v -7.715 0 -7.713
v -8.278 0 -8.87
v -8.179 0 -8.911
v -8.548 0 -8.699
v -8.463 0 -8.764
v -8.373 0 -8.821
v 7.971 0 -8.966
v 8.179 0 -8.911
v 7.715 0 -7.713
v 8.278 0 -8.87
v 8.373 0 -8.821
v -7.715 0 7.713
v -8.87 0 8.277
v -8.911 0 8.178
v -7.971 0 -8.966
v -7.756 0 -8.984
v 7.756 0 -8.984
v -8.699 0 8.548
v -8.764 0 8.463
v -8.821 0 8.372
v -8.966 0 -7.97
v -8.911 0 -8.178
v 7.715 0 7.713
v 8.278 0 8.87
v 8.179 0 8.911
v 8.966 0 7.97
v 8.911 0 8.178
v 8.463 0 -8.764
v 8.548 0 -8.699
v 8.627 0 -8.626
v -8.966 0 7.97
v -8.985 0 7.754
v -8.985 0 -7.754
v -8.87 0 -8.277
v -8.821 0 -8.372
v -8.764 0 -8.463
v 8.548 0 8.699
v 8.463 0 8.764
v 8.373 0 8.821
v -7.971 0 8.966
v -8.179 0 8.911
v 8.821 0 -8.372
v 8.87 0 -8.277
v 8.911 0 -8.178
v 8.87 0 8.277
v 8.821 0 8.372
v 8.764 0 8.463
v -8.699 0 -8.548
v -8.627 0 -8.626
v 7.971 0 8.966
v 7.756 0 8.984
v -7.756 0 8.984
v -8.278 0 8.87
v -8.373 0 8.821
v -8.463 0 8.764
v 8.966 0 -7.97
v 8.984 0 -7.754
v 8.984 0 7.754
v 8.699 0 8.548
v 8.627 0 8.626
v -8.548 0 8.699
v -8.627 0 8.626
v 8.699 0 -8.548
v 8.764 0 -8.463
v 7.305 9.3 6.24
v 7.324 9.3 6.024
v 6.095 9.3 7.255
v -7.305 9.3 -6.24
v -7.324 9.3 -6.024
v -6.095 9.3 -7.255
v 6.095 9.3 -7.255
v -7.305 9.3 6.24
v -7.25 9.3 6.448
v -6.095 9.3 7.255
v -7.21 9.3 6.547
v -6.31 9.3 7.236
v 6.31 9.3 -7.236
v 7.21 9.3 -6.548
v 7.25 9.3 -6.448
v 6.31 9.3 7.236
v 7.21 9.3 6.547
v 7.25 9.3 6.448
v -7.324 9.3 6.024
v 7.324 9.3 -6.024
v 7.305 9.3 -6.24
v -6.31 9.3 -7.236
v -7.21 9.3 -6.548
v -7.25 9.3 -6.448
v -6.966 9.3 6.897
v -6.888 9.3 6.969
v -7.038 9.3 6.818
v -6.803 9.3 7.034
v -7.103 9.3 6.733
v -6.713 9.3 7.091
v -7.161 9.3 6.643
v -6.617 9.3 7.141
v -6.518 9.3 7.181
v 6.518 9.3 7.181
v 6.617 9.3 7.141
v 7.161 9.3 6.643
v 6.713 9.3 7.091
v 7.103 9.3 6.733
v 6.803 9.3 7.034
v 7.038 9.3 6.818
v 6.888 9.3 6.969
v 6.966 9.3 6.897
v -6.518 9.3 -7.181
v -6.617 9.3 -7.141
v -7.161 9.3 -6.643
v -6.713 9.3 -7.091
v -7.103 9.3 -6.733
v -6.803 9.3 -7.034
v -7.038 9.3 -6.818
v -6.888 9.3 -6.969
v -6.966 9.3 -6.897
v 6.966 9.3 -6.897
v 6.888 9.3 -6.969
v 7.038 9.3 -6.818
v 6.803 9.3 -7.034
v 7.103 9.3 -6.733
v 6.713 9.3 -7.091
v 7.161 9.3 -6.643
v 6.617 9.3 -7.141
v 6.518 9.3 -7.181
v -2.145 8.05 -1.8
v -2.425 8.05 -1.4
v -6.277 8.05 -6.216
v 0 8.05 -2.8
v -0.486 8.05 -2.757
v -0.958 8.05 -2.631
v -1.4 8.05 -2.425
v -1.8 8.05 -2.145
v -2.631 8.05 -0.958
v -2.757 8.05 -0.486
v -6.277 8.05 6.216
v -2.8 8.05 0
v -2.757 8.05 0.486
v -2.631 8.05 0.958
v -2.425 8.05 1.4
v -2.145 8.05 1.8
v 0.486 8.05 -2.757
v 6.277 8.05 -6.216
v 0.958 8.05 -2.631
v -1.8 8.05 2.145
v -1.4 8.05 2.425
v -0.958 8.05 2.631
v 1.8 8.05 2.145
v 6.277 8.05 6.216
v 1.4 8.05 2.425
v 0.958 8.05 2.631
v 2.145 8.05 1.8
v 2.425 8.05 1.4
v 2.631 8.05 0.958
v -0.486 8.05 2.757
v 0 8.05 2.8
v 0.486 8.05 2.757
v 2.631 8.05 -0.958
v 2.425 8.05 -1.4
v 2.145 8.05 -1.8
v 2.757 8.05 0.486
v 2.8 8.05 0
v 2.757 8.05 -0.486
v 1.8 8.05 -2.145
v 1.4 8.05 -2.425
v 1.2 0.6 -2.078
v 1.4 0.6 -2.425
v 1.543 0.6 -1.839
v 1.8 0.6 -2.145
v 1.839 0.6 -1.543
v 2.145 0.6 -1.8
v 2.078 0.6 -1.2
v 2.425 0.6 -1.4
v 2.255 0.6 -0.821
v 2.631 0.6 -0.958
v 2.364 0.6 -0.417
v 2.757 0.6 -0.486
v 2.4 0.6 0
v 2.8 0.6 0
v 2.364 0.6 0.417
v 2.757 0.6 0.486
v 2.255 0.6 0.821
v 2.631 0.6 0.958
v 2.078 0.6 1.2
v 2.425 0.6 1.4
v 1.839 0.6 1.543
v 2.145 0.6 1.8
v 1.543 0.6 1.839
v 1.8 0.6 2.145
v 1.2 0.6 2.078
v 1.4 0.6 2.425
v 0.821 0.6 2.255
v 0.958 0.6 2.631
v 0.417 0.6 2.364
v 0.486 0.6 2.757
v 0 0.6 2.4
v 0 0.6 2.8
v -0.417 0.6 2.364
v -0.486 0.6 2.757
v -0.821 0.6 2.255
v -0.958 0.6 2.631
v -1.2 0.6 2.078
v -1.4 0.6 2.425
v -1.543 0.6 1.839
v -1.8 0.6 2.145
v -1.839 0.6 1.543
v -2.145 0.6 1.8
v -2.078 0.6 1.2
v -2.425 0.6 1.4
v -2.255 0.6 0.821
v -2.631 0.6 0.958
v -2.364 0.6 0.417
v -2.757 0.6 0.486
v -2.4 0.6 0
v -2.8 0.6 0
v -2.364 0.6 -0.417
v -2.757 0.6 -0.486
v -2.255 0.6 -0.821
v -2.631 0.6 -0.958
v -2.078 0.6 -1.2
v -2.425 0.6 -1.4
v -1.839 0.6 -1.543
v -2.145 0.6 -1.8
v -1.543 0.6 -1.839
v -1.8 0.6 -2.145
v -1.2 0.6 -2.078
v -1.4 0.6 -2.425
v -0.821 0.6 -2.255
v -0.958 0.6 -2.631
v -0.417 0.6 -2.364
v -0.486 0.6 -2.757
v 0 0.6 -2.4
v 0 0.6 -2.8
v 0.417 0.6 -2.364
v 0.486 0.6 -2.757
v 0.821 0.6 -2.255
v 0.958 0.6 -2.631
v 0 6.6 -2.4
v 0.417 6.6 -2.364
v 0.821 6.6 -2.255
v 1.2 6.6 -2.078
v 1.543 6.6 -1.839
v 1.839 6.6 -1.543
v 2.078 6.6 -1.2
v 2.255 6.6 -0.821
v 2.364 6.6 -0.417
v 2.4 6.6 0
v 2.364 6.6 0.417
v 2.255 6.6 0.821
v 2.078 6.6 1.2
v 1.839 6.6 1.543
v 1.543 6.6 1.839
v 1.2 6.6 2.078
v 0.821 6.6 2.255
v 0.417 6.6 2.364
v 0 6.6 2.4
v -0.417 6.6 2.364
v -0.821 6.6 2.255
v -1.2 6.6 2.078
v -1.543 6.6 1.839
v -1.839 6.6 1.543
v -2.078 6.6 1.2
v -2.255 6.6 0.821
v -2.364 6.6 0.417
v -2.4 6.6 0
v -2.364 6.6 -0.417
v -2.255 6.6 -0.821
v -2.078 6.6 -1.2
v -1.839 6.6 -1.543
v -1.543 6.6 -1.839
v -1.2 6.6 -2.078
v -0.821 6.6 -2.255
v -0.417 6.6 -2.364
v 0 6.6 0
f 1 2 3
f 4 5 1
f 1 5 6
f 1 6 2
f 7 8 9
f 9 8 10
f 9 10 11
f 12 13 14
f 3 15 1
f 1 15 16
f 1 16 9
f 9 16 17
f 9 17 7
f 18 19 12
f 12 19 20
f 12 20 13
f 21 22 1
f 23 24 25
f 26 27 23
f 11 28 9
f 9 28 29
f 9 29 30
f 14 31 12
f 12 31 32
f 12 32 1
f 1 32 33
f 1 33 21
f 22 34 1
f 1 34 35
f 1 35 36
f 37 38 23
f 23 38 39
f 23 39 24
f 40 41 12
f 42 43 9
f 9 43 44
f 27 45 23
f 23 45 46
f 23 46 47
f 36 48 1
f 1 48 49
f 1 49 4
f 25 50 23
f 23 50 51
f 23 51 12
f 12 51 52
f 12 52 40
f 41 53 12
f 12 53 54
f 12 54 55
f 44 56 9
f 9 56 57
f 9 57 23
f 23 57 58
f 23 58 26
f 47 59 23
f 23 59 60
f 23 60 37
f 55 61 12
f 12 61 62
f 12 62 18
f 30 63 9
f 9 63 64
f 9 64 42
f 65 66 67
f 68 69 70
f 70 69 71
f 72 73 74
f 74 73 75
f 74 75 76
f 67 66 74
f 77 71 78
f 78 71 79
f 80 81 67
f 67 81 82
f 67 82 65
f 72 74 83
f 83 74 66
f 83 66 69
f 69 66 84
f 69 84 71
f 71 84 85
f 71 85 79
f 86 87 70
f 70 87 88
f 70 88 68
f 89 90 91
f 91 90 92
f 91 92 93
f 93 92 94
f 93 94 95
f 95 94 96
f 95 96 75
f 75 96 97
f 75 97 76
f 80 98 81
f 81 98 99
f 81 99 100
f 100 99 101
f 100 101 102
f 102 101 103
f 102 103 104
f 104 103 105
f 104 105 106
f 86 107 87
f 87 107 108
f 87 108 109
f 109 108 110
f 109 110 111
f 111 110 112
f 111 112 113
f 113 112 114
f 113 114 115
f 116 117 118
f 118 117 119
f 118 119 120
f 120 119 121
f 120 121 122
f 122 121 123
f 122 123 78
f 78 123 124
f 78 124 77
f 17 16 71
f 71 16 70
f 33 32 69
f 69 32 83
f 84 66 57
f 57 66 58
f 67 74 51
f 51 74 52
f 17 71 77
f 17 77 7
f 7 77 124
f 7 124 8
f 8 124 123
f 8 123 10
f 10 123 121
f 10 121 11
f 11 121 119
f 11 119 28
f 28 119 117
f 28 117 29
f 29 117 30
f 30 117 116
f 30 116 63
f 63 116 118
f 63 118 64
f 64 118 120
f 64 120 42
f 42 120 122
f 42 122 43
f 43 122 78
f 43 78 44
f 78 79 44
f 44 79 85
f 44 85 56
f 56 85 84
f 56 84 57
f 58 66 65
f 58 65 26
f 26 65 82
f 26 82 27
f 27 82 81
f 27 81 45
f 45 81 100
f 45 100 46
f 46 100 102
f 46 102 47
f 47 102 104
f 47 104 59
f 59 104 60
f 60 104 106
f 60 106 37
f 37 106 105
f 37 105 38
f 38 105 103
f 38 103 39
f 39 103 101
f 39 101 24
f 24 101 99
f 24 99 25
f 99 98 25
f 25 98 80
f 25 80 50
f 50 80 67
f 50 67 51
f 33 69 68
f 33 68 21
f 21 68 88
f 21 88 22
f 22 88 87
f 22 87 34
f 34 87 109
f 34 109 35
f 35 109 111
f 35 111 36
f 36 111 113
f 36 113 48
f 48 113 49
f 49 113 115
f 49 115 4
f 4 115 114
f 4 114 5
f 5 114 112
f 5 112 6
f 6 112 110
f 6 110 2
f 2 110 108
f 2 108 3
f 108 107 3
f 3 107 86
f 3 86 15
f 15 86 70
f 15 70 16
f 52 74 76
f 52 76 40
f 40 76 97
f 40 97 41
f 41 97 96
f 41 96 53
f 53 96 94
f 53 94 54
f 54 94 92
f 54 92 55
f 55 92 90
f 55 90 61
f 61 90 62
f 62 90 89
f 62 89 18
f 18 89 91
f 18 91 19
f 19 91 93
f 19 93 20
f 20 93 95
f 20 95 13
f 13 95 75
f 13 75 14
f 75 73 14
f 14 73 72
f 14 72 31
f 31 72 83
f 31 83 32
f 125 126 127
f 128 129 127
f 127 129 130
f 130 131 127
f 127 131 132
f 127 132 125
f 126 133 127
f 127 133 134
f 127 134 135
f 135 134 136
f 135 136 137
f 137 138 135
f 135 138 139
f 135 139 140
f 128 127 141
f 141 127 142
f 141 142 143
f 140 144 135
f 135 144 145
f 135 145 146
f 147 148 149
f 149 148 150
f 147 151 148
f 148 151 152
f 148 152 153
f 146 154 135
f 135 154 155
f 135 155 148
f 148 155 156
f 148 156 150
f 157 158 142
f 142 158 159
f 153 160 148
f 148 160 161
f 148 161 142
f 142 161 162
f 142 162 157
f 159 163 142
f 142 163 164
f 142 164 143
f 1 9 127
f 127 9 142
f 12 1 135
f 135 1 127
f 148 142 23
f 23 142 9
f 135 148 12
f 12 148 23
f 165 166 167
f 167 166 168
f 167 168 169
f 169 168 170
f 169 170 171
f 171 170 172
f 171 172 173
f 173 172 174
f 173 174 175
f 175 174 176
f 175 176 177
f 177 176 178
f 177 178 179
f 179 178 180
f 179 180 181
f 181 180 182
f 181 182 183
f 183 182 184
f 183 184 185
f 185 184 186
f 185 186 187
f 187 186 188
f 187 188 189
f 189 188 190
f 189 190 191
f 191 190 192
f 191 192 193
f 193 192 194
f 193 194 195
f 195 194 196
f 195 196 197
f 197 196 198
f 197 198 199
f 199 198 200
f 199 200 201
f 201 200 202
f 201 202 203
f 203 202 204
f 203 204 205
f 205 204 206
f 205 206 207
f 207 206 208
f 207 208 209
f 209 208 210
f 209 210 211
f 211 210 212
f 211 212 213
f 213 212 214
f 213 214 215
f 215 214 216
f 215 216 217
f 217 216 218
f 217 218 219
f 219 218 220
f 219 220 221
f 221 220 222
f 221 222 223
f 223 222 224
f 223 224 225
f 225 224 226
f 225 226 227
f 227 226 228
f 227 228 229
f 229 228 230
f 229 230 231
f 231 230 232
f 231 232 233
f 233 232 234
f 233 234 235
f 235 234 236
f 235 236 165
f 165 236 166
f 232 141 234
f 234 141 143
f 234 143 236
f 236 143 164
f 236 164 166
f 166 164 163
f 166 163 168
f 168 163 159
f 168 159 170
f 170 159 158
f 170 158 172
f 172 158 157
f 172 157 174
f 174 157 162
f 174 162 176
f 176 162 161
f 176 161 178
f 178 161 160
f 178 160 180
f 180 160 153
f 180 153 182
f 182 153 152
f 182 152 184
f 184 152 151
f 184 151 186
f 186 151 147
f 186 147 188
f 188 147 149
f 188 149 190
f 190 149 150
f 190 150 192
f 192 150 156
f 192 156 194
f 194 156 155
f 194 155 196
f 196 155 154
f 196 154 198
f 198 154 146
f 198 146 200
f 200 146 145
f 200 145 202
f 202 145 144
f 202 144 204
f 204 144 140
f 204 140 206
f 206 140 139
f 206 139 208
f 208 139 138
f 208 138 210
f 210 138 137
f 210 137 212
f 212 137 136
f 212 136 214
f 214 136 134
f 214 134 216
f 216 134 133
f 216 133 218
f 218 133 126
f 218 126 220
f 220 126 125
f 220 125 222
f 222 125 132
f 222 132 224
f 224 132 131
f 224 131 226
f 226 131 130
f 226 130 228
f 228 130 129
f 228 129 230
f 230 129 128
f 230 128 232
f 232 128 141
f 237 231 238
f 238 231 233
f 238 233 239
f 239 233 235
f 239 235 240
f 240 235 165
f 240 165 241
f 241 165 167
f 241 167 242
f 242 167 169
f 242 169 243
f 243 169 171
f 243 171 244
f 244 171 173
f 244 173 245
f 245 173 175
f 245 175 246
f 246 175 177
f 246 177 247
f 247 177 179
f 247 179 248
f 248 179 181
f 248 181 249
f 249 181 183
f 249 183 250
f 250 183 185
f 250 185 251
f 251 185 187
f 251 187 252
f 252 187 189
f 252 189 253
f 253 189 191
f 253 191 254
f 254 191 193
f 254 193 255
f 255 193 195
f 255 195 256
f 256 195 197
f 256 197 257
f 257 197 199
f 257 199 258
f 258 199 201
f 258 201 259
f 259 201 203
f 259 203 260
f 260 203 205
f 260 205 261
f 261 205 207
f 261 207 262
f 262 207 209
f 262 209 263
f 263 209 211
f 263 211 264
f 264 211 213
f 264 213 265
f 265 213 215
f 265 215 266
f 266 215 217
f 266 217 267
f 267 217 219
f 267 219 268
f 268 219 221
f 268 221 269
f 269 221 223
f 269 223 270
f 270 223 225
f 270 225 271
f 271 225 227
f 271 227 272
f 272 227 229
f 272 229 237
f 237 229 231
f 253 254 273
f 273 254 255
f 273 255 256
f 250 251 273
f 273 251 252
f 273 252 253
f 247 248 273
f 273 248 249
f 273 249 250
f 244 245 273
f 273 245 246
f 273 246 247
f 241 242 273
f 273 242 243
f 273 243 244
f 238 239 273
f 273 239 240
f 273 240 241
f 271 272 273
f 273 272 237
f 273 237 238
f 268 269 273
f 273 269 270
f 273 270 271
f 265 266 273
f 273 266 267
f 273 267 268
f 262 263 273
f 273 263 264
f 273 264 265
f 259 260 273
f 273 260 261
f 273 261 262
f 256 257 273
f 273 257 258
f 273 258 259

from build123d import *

# Parameters (mm, degrees)
FILLET1_R           = 1.25
BOSS_EXTRUDE1_REACH = 17.399
SKETCH8_R           = 2.8
SKETCH12_R          = 2.4
CUT_EXTRUDE8_DEPTH  = 6


with BuildPart() as part:
    # Sketch6 → Loft2 section 0
    with BuildSketch(Plane(origin=(0, 9.3, 0), x_dir=(1, 0, 0), z_dir=(0, 1, 0))):
        with BuildLine():
            Line((-7.324, 7.255), (7.324, 7.255))
            Line((7.324, 7.255), (7.324, -7.255))
            Line((7.324, -7.255), (-7.324, -7.255))
            Line((-7.324, -7.255), (-7.324, 7.255))
        make_face()
    # Sketch5 → Loft2 section 1
    with BuildSketch(Plane(origin=(0, 0, 0), x_dir=(1, 0, 0), z_dir=(0, 1, 0))):
        with BuildLine():
            Line((-8.9845, 8.9845), (8.9845, 8.9845))
            Line((8.9845, 8.9845), (8.9845, -8.9845))
            Line((8.9845, -8.9845), (-8.9845, -8.9845))
            Line((-8.9845, -8.9845), (-8.9845, 8.9845))
        make_face()
    loft()

    # Fillet1
    fillet1_edges = [part.edges().sort_by_distance(p)[0] for p in [
        (8.15425, 4.65, -8.11975),
        (8.15425, 4.65, 8.11975),
        (-8.15425, 4.65, -8.11975),
        (-8.15425, 4.65, 8.11975),
    ]]
    fillet(fillet1_edges, radius=FILLET1_R)

    # Shell1: read off the stored shape, not the designer's step
    # Shell1: loft between two sections, ruled curve by curve
    shell1_from = [
        Edge.make_line((-7.714731612, 0, -7.713068719), (7.714731612, 0, -7.713068719)),
        Edge.make_line((-7.714731612, 0, 7.713068719), (-7.714731612, 0, -7.713068719)),
        Edge.make_line((7.714731612, 0, 7.713068719), (7.714731612, 0, -7.713068719)),
        Edge.make_line((-7.714731612, 0, 7.713068719), (7.714731612, 0, 7.713068719)),
    ]
    shell1_to = [
        Edge.make_line((-6.277417095, 8.05, -6.216028397), (6.277417095, 8.05, -6.216028397)),
        Edge.make_line((-6.277417095, 8.05, 6.216028397), (-6.277417095, 8.05, -6.216028397)),
        Edge.make_line((6.277417095, 8.05, 6.216028397), (6.277417095, 8.05, -6.216028397)),
        Edge.make_line((-6.277417095, 8.05, 6.216028397), (6.277417095, 8.05, 6.216028397)),
    ]
    shell1 = Solid(Shell([*[Face.make_surface_from_curves(shell1_from[k], shell1_to[k]) for k in range(4)], Face(Wire(shell1_from)), Face(Wire(shell1_to))]))
    add(shell1, mode=Mode.SUBTRACT)

    # Sketch8 → Boss-Extrude1 (add, up to next)
    with BuildSketch(Plane(origin=(0, 0.6, 0), x_dir=(1, 0, 0), z_dir=(0, 1, 0)), mode=Mode.PRIVATE) as boss_extrude1_sk1:
        with Locations(Location((0, 0, 0), (0, 0, 270))):
            Circle(SKETCH8_R)
    boss_extrude1_tool1 = extrude(boss_extrude1_sk1.sketch, amount=BOSS_EXTRUDE1_REACH, mode=Mode.PRIVATE) - part.part
    add(boss_extrude1_tool1.solids().sort_by_distance((0, 0.6, 0))[0])

    # Sketch12 → Cut-Extrude8 (cut)
    with BuildSketch(Plane(origin=(0, 0.6, 0), x_dir=(1, 0, 0), z_dir=(0, 1, 0))):
        with Locations(Location((0, 0, 0), (0, 0, 270))):
            Circle(SKETCH12_R)
    extrude(amount=CUT_EXTRUDE8_DEPTH, mode=Mode.SUBTRACT)


solid = part.part
